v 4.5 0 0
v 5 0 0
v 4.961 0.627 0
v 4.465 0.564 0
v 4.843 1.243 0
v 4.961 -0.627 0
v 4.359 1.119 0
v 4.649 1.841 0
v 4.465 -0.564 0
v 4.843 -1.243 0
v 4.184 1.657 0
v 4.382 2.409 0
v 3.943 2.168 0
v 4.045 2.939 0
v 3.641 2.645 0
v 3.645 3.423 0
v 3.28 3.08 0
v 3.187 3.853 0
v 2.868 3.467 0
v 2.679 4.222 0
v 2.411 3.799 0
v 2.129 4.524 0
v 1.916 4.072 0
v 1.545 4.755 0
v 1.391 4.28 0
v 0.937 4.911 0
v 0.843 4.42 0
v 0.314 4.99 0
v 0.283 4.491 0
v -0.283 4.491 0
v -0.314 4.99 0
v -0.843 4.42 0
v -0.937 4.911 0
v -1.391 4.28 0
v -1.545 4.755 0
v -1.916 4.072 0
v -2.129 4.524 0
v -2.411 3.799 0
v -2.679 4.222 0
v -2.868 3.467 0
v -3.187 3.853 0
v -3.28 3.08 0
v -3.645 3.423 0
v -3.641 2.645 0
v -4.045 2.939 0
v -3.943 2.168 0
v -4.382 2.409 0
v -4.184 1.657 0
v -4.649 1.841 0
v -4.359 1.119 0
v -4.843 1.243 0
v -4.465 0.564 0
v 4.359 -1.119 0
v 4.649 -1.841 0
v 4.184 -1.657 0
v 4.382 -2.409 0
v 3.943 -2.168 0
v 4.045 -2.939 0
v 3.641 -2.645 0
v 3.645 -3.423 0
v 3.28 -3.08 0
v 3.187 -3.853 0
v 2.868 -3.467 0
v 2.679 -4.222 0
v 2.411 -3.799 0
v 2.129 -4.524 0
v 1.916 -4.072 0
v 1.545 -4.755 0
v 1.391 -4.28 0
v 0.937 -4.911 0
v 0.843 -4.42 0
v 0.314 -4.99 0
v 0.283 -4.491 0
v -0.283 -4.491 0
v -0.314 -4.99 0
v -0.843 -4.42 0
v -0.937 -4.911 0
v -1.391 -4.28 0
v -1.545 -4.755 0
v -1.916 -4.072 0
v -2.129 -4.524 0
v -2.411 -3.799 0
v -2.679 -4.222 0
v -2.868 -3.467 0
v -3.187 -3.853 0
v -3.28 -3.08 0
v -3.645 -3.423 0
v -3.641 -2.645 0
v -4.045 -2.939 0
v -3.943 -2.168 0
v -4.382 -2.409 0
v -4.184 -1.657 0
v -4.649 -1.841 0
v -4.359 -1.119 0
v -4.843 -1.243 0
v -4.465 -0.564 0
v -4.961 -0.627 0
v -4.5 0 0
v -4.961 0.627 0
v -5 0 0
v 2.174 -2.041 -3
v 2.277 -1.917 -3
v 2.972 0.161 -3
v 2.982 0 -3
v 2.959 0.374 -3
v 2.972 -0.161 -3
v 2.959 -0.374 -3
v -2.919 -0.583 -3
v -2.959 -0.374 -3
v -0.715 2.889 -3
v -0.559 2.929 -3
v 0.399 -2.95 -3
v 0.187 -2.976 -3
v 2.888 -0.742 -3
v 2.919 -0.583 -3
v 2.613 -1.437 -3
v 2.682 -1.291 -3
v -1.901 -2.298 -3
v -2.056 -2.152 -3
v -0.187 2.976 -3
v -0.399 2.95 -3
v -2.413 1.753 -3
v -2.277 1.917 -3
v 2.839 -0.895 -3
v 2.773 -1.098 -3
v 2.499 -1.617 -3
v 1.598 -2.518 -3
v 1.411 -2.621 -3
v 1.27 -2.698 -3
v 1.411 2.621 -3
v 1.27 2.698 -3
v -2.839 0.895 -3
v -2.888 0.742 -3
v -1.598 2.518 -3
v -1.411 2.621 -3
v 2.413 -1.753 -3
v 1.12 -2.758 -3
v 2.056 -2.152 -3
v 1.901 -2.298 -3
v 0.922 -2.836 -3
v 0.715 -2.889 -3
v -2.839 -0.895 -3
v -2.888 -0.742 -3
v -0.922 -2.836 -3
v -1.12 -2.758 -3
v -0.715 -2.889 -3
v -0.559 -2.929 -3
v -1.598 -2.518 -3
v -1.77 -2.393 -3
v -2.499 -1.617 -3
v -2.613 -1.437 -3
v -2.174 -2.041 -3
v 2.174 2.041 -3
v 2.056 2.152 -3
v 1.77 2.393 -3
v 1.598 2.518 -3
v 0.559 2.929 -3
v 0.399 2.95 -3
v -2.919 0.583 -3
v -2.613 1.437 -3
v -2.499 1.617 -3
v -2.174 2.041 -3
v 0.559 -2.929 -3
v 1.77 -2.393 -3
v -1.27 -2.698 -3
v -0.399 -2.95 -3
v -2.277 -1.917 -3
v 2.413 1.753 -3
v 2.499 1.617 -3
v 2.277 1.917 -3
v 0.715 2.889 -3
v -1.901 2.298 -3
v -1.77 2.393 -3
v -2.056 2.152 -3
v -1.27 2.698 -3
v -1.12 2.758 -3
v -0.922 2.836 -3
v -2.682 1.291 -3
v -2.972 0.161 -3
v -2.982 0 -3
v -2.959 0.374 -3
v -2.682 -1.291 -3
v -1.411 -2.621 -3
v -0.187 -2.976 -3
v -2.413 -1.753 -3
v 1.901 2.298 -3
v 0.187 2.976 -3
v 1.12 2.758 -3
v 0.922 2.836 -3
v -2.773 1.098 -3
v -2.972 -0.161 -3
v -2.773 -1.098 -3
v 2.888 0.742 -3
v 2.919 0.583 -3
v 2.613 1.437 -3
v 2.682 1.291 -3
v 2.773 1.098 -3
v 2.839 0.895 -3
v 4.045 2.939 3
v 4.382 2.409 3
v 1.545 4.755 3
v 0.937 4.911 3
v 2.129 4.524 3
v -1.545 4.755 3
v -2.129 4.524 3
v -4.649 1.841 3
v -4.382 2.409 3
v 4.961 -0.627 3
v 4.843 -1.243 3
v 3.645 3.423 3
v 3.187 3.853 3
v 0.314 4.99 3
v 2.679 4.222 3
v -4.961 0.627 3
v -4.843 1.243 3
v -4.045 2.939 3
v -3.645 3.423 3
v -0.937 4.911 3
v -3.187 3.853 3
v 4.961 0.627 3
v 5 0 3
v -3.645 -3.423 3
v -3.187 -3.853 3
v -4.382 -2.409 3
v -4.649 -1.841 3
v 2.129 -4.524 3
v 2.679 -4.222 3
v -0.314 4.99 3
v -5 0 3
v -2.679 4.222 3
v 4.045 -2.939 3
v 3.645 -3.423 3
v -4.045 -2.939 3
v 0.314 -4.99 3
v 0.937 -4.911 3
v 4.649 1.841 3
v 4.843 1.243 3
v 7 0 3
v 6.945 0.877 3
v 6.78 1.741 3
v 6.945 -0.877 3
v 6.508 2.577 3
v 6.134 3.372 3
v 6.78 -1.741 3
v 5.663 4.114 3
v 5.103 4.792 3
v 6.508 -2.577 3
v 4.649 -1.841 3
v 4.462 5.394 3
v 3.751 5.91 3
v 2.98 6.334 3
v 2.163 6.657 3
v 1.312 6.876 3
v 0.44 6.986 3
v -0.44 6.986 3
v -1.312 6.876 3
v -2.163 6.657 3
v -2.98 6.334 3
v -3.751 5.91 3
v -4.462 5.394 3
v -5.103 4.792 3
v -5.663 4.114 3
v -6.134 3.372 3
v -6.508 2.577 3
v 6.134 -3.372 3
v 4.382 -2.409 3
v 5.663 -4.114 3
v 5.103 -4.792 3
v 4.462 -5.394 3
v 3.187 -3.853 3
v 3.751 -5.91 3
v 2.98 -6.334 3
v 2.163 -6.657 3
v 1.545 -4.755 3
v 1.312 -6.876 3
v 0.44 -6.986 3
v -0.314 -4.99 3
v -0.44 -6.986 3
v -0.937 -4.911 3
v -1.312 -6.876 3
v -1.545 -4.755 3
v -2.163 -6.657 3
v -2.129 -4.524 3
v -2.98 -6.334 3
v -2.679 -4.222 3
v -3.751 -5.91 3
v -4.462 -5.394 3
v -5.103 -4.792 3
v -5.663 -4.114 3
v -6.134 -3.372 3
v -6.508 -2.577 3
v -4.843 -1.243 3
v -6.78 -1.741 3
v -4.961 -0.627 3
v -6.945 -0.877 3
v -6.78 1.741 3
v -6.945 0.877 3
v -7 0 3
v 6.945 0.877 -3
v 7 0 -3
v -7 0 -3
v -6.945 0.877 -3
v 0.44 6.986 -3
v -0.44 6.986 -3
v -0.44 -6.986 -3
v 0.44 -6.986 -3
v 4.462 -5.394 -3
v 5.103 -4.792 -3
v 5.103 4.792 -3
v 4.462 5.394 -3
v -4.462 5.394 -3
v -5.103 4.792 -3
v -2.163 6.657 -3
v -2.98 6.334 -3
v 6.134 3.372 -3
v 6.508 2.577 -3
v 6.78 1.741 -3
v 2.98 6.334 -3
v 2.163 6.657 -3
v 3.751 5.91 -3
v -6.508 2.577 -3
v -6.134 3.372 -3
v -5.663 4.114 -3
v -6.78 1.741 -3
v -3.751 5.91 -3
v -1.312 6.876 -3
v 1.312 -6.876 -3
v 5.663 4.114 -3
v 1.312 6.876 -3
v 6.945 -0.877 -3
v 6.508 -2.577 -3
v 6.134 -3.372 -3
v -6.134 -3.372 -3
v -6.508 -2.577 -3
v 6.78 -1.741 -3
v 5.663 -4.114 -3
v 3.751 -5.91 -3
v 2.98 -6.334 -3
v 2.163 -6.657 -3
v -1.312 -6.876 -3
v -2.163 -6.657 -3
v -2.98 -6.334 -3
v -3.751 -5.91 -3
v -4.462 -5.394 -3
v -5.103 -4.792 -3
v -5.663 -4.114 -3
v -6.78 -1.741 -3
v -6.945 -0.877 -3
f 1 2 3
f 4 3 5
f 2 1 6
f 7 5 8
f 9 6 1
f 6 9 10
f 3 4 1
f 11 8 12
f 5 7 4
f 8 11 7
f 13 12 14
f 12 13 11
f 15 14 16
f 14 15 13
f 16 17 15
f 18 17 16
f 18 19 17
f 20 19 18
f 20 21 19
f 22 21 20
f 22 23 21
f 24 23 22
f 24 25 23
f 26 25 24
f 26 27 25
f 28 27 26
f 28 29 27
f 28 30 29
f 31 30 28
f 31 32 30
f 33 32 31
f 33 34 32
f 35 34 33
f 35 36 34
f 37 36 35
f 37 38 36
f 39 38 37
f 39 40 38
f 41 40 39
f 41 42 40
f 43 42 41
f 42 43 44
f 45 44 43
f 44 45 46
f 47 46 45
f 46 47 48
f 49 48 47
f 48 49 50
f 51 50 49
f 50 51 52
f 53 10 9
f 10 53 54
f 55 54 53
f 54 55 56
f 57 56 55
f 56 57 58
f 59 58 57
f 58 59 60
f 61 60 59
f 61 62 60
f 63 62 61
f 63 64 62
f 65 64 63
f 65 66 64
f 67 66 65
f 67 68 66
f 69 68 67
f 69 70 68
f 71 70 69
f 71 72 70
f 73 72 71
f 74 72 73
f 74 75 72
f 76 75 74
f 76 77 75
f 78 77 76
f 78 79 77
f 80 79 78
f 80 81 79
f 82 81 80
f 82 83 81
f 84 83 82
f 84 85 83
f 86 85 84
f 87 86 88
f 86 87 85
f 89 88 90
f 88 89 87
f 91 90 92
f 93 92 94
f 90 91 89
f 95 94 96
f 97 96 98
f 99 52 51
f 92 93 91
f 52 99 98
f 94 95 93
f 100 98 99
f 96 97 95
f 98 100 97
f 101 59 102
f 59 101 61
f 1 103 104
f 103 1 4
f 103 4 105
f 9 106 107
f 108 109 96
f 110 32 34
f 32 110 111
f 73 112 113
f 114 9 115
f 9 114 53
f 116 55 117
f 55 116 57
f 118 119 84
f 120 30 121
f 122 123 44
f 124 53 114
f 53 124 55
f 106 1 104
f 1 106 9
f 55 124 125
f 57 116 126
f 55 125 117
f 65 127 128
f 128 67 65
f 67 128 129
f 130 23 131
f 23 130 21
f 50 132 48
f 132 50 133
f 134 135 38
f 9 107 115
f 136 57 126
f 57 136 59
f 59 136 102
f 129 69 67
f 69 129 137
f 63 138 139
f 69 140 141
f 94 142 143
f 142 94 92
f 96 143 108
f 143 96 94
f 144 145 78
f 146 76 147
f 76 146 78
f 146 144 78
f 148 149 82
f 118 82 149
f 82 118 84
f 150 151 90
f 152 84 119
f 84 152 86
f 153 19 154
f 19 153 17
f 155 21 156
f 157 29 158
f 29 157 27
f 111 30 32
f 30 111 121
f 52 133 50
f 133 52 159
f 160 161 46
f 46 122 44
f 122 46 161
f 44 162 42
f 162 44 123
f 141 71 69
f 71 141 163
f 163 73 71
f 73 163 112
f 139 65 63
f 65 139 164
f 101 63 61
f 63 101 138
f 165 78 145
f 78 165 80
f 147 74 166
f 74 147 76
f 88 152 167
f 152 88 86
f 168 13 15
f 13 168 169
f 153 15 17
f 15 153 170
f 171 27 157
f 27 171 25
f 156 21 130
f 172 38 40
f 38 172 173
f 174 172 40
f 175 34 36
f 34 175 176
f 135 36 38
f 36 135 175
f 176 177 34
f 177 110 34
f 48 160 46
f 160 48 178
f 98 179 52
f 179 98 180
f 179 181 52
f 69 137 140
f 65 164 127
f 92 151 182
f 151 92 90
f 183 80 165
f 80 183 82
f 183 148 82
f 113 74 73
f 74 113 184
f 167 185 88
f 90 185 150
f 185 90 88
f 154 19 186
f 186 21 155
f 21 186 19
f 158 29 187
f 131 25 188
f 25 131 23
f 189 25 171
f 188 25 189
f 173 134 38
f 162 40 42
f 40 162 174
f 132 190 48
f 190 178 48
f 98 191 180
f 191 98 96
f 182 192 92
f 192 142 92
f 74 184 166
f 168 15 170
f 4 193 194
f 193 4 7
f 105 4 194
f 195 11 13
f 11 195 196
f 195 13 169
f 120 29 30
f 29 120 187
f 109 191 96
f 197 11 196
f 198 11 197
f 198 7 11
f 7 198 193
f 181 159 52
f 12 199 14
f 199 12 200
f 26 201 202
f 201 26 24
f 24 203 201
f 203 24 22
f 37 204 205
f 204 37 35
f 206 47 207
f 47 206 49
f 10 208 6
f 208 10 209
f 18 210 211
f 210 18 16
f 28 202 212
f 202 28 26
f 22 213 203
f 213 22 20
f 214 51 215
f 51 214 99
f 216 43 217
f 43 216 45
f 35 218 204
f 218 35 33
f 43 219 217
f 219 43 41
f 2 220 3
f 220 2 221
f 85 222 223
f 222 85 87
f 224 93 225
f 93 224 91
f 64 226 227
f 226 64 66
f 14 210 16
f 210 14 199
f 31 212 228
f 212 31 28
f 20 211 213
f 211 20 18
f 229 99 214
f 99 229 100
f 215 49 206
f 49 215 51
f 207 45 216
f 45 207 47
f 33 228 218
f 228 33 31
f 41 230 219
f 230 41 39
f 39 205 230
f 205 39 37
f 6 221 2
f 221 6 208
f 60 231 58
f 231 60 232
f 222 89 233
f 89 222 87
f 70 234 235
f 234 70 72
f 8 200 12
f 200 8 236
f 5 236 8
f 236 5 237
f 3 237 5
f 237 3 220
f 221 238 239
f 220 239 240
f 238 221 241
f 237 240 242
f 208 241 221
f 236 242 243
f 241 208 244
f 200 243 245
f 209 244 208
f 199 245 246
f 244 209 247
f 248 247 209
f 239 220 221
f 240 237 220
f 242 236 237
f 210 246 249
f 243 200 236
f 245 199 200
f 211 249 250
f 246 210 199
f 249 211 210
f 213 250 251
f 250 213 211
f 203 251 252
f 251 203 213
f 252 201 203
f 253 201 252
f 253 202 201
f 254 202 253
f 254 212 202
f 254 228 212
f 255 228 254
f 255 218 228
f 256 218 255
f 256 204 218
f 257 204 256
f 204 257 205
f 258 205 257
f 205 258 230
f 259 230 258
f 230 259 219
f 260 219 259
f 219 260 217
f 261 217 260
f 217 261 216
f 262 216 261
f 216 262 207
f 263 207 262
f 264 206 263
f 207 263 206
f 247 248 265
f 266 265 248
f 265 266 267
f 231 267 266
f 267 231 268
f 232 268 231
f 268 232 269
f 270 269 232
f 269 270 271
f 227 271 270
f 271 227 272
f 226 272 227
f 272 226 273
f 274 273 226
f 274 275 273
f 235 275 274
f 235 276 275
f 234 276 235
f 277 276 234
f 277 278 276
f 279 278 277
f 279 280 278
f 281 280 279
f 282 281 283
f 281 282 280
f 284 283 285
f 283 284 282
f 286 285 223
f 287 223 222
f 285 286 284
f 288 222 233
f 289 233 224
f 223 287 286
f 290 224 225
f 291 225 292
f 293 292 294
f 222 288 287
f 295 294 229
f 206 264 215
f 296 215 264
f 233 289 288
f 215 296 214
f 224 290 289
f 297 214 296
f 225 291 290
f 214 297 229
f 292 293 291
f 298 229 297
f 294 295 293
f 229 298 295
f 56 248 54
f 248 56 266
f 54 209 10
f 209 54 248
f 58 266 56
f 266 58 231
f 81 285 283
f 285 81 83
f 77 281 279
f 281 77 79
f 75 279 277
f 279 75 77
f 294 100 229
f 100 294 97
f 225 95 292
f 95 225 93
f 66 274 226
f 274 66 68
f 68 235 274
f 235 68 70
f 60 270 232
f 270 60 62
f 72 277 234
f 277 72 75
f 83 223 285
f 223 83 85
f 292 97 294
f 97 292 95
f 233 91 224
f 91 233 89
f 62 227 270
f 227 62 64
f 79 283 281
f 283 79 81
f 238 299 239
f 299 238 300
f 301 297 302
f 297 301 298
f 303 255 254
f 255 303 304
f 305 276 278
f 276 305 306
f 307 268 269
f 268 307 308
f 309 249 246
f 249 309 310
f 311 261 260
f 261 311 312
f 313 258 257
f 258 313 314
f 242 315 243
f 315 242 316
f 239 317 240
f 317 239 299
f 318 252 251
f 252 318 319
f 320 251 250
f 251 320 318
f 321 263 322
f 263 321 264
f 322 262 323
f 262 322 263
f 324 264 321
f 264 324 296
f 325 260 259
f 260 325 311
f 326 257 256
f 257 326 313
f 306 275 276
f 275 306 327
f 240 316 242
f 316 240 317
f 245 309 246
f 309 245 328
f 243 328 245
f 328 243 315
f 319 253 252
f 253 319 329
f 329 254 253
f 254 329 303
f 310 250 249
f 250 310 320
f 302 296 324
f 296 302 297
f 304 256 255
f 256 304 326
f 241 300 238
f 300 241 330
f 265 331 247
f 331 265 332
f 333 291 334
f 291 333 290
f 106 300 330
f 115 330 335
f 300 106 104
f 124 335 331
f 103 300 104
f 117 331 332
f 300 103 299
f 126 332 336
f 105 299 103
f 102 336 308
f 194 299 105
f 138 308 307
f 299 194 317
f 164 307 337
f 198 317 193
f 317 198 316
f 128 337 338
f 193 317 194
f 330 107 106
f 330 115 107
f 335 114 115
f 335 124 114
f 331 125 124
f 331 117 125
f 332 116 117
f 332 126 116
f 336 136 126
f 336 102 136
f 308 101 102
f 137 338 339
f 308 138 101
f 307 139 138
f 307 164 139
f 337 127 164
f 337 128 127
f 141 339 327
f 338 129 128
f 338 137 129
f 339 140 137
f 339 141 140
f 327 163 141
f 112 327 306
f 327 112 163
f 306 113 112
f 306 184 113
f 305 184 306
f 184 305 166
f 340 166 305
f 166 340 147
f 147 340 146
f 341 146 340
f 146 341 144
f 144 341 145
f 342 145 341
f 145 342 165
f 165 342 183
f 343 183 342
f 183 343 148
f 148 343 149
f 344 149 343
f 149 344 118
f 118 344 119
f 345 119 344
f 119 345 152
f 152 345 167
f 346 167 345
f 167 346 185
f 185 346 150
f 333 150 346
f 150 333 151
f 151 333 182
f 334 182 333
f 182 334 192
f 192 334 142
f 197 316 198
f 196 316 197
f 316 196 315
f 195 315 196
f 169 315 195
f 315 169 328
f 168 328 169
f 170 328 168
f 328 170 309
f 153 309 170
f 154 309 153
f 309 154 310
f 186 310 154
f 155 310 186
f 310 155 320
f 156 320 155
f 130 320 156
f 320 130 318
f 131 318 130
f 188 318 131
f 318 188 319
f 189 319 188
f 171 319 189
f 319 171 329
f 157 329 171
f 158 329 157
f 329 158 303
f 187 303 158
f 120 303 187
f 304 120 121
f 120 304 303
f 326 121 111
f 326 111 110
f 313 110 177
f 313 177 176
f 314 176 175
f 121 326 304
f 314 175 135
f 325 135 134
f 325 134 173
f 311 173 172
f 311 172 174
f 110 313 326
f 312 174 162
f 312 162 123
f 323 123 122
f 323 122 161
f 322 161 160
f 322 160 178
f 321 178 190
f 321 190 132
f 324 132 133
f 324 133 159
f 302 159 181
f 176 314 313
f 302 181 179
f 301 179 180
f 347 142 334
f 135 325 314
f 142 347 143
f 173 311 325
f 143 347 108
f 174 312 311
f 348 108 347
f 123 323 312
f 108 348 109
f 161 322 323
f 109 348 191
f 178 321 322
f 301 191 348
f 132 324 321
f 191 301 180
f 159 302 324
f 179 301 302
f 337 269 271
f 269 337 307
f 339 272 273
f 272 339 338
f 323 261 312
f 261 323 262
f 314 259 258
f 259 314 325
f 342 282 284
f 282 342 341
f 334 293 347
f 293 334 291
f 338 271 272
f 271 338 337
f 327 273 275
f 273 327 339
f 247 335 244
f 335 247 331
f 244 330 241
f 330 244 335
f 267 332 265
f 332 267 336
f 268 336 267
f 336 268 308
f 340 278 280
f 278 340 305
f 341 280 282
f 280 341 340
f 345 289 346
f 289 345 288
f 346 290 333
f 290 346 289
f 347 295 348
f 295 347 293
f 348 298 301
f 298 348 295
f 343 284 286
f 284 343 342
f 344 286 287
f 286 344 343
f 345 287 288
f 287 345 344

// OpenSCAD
$fn = 50;


difference() {
	union() {
		translate(v = [0, 0, -3.0000000000]) {
			cylinder(h = 6, r = 7.0000000000);
		}
	}
	union() {
		translate(v = [0, 0, 0]) {
			rotate(a = [0, 0, 0]) {
				difference() {
					union() {
						translate(v = [0, 0, -6.0000000000]) {
							cylinder(h = 6, r = 2.2500000000);
						}
						translate(v = [0, 0, -4.2000000000]) {
							cylinder(h = 4.2000000000, r1 = 2.3750000000, r2 = 4.5000000000);
						}
						translate(v = [0, 0, -6.0000000000]) {
							cylinder(h = 6, r = 2.3750000000);
						}
						translate(v = [0, 0, -6.0000000000]) {
							cylinder(h = 6, r = 2.2500000000);
						}
					}
					union();
				}
			}
		}
		#cylinder(h = 3, r = 5.0000000000);
	}
}
